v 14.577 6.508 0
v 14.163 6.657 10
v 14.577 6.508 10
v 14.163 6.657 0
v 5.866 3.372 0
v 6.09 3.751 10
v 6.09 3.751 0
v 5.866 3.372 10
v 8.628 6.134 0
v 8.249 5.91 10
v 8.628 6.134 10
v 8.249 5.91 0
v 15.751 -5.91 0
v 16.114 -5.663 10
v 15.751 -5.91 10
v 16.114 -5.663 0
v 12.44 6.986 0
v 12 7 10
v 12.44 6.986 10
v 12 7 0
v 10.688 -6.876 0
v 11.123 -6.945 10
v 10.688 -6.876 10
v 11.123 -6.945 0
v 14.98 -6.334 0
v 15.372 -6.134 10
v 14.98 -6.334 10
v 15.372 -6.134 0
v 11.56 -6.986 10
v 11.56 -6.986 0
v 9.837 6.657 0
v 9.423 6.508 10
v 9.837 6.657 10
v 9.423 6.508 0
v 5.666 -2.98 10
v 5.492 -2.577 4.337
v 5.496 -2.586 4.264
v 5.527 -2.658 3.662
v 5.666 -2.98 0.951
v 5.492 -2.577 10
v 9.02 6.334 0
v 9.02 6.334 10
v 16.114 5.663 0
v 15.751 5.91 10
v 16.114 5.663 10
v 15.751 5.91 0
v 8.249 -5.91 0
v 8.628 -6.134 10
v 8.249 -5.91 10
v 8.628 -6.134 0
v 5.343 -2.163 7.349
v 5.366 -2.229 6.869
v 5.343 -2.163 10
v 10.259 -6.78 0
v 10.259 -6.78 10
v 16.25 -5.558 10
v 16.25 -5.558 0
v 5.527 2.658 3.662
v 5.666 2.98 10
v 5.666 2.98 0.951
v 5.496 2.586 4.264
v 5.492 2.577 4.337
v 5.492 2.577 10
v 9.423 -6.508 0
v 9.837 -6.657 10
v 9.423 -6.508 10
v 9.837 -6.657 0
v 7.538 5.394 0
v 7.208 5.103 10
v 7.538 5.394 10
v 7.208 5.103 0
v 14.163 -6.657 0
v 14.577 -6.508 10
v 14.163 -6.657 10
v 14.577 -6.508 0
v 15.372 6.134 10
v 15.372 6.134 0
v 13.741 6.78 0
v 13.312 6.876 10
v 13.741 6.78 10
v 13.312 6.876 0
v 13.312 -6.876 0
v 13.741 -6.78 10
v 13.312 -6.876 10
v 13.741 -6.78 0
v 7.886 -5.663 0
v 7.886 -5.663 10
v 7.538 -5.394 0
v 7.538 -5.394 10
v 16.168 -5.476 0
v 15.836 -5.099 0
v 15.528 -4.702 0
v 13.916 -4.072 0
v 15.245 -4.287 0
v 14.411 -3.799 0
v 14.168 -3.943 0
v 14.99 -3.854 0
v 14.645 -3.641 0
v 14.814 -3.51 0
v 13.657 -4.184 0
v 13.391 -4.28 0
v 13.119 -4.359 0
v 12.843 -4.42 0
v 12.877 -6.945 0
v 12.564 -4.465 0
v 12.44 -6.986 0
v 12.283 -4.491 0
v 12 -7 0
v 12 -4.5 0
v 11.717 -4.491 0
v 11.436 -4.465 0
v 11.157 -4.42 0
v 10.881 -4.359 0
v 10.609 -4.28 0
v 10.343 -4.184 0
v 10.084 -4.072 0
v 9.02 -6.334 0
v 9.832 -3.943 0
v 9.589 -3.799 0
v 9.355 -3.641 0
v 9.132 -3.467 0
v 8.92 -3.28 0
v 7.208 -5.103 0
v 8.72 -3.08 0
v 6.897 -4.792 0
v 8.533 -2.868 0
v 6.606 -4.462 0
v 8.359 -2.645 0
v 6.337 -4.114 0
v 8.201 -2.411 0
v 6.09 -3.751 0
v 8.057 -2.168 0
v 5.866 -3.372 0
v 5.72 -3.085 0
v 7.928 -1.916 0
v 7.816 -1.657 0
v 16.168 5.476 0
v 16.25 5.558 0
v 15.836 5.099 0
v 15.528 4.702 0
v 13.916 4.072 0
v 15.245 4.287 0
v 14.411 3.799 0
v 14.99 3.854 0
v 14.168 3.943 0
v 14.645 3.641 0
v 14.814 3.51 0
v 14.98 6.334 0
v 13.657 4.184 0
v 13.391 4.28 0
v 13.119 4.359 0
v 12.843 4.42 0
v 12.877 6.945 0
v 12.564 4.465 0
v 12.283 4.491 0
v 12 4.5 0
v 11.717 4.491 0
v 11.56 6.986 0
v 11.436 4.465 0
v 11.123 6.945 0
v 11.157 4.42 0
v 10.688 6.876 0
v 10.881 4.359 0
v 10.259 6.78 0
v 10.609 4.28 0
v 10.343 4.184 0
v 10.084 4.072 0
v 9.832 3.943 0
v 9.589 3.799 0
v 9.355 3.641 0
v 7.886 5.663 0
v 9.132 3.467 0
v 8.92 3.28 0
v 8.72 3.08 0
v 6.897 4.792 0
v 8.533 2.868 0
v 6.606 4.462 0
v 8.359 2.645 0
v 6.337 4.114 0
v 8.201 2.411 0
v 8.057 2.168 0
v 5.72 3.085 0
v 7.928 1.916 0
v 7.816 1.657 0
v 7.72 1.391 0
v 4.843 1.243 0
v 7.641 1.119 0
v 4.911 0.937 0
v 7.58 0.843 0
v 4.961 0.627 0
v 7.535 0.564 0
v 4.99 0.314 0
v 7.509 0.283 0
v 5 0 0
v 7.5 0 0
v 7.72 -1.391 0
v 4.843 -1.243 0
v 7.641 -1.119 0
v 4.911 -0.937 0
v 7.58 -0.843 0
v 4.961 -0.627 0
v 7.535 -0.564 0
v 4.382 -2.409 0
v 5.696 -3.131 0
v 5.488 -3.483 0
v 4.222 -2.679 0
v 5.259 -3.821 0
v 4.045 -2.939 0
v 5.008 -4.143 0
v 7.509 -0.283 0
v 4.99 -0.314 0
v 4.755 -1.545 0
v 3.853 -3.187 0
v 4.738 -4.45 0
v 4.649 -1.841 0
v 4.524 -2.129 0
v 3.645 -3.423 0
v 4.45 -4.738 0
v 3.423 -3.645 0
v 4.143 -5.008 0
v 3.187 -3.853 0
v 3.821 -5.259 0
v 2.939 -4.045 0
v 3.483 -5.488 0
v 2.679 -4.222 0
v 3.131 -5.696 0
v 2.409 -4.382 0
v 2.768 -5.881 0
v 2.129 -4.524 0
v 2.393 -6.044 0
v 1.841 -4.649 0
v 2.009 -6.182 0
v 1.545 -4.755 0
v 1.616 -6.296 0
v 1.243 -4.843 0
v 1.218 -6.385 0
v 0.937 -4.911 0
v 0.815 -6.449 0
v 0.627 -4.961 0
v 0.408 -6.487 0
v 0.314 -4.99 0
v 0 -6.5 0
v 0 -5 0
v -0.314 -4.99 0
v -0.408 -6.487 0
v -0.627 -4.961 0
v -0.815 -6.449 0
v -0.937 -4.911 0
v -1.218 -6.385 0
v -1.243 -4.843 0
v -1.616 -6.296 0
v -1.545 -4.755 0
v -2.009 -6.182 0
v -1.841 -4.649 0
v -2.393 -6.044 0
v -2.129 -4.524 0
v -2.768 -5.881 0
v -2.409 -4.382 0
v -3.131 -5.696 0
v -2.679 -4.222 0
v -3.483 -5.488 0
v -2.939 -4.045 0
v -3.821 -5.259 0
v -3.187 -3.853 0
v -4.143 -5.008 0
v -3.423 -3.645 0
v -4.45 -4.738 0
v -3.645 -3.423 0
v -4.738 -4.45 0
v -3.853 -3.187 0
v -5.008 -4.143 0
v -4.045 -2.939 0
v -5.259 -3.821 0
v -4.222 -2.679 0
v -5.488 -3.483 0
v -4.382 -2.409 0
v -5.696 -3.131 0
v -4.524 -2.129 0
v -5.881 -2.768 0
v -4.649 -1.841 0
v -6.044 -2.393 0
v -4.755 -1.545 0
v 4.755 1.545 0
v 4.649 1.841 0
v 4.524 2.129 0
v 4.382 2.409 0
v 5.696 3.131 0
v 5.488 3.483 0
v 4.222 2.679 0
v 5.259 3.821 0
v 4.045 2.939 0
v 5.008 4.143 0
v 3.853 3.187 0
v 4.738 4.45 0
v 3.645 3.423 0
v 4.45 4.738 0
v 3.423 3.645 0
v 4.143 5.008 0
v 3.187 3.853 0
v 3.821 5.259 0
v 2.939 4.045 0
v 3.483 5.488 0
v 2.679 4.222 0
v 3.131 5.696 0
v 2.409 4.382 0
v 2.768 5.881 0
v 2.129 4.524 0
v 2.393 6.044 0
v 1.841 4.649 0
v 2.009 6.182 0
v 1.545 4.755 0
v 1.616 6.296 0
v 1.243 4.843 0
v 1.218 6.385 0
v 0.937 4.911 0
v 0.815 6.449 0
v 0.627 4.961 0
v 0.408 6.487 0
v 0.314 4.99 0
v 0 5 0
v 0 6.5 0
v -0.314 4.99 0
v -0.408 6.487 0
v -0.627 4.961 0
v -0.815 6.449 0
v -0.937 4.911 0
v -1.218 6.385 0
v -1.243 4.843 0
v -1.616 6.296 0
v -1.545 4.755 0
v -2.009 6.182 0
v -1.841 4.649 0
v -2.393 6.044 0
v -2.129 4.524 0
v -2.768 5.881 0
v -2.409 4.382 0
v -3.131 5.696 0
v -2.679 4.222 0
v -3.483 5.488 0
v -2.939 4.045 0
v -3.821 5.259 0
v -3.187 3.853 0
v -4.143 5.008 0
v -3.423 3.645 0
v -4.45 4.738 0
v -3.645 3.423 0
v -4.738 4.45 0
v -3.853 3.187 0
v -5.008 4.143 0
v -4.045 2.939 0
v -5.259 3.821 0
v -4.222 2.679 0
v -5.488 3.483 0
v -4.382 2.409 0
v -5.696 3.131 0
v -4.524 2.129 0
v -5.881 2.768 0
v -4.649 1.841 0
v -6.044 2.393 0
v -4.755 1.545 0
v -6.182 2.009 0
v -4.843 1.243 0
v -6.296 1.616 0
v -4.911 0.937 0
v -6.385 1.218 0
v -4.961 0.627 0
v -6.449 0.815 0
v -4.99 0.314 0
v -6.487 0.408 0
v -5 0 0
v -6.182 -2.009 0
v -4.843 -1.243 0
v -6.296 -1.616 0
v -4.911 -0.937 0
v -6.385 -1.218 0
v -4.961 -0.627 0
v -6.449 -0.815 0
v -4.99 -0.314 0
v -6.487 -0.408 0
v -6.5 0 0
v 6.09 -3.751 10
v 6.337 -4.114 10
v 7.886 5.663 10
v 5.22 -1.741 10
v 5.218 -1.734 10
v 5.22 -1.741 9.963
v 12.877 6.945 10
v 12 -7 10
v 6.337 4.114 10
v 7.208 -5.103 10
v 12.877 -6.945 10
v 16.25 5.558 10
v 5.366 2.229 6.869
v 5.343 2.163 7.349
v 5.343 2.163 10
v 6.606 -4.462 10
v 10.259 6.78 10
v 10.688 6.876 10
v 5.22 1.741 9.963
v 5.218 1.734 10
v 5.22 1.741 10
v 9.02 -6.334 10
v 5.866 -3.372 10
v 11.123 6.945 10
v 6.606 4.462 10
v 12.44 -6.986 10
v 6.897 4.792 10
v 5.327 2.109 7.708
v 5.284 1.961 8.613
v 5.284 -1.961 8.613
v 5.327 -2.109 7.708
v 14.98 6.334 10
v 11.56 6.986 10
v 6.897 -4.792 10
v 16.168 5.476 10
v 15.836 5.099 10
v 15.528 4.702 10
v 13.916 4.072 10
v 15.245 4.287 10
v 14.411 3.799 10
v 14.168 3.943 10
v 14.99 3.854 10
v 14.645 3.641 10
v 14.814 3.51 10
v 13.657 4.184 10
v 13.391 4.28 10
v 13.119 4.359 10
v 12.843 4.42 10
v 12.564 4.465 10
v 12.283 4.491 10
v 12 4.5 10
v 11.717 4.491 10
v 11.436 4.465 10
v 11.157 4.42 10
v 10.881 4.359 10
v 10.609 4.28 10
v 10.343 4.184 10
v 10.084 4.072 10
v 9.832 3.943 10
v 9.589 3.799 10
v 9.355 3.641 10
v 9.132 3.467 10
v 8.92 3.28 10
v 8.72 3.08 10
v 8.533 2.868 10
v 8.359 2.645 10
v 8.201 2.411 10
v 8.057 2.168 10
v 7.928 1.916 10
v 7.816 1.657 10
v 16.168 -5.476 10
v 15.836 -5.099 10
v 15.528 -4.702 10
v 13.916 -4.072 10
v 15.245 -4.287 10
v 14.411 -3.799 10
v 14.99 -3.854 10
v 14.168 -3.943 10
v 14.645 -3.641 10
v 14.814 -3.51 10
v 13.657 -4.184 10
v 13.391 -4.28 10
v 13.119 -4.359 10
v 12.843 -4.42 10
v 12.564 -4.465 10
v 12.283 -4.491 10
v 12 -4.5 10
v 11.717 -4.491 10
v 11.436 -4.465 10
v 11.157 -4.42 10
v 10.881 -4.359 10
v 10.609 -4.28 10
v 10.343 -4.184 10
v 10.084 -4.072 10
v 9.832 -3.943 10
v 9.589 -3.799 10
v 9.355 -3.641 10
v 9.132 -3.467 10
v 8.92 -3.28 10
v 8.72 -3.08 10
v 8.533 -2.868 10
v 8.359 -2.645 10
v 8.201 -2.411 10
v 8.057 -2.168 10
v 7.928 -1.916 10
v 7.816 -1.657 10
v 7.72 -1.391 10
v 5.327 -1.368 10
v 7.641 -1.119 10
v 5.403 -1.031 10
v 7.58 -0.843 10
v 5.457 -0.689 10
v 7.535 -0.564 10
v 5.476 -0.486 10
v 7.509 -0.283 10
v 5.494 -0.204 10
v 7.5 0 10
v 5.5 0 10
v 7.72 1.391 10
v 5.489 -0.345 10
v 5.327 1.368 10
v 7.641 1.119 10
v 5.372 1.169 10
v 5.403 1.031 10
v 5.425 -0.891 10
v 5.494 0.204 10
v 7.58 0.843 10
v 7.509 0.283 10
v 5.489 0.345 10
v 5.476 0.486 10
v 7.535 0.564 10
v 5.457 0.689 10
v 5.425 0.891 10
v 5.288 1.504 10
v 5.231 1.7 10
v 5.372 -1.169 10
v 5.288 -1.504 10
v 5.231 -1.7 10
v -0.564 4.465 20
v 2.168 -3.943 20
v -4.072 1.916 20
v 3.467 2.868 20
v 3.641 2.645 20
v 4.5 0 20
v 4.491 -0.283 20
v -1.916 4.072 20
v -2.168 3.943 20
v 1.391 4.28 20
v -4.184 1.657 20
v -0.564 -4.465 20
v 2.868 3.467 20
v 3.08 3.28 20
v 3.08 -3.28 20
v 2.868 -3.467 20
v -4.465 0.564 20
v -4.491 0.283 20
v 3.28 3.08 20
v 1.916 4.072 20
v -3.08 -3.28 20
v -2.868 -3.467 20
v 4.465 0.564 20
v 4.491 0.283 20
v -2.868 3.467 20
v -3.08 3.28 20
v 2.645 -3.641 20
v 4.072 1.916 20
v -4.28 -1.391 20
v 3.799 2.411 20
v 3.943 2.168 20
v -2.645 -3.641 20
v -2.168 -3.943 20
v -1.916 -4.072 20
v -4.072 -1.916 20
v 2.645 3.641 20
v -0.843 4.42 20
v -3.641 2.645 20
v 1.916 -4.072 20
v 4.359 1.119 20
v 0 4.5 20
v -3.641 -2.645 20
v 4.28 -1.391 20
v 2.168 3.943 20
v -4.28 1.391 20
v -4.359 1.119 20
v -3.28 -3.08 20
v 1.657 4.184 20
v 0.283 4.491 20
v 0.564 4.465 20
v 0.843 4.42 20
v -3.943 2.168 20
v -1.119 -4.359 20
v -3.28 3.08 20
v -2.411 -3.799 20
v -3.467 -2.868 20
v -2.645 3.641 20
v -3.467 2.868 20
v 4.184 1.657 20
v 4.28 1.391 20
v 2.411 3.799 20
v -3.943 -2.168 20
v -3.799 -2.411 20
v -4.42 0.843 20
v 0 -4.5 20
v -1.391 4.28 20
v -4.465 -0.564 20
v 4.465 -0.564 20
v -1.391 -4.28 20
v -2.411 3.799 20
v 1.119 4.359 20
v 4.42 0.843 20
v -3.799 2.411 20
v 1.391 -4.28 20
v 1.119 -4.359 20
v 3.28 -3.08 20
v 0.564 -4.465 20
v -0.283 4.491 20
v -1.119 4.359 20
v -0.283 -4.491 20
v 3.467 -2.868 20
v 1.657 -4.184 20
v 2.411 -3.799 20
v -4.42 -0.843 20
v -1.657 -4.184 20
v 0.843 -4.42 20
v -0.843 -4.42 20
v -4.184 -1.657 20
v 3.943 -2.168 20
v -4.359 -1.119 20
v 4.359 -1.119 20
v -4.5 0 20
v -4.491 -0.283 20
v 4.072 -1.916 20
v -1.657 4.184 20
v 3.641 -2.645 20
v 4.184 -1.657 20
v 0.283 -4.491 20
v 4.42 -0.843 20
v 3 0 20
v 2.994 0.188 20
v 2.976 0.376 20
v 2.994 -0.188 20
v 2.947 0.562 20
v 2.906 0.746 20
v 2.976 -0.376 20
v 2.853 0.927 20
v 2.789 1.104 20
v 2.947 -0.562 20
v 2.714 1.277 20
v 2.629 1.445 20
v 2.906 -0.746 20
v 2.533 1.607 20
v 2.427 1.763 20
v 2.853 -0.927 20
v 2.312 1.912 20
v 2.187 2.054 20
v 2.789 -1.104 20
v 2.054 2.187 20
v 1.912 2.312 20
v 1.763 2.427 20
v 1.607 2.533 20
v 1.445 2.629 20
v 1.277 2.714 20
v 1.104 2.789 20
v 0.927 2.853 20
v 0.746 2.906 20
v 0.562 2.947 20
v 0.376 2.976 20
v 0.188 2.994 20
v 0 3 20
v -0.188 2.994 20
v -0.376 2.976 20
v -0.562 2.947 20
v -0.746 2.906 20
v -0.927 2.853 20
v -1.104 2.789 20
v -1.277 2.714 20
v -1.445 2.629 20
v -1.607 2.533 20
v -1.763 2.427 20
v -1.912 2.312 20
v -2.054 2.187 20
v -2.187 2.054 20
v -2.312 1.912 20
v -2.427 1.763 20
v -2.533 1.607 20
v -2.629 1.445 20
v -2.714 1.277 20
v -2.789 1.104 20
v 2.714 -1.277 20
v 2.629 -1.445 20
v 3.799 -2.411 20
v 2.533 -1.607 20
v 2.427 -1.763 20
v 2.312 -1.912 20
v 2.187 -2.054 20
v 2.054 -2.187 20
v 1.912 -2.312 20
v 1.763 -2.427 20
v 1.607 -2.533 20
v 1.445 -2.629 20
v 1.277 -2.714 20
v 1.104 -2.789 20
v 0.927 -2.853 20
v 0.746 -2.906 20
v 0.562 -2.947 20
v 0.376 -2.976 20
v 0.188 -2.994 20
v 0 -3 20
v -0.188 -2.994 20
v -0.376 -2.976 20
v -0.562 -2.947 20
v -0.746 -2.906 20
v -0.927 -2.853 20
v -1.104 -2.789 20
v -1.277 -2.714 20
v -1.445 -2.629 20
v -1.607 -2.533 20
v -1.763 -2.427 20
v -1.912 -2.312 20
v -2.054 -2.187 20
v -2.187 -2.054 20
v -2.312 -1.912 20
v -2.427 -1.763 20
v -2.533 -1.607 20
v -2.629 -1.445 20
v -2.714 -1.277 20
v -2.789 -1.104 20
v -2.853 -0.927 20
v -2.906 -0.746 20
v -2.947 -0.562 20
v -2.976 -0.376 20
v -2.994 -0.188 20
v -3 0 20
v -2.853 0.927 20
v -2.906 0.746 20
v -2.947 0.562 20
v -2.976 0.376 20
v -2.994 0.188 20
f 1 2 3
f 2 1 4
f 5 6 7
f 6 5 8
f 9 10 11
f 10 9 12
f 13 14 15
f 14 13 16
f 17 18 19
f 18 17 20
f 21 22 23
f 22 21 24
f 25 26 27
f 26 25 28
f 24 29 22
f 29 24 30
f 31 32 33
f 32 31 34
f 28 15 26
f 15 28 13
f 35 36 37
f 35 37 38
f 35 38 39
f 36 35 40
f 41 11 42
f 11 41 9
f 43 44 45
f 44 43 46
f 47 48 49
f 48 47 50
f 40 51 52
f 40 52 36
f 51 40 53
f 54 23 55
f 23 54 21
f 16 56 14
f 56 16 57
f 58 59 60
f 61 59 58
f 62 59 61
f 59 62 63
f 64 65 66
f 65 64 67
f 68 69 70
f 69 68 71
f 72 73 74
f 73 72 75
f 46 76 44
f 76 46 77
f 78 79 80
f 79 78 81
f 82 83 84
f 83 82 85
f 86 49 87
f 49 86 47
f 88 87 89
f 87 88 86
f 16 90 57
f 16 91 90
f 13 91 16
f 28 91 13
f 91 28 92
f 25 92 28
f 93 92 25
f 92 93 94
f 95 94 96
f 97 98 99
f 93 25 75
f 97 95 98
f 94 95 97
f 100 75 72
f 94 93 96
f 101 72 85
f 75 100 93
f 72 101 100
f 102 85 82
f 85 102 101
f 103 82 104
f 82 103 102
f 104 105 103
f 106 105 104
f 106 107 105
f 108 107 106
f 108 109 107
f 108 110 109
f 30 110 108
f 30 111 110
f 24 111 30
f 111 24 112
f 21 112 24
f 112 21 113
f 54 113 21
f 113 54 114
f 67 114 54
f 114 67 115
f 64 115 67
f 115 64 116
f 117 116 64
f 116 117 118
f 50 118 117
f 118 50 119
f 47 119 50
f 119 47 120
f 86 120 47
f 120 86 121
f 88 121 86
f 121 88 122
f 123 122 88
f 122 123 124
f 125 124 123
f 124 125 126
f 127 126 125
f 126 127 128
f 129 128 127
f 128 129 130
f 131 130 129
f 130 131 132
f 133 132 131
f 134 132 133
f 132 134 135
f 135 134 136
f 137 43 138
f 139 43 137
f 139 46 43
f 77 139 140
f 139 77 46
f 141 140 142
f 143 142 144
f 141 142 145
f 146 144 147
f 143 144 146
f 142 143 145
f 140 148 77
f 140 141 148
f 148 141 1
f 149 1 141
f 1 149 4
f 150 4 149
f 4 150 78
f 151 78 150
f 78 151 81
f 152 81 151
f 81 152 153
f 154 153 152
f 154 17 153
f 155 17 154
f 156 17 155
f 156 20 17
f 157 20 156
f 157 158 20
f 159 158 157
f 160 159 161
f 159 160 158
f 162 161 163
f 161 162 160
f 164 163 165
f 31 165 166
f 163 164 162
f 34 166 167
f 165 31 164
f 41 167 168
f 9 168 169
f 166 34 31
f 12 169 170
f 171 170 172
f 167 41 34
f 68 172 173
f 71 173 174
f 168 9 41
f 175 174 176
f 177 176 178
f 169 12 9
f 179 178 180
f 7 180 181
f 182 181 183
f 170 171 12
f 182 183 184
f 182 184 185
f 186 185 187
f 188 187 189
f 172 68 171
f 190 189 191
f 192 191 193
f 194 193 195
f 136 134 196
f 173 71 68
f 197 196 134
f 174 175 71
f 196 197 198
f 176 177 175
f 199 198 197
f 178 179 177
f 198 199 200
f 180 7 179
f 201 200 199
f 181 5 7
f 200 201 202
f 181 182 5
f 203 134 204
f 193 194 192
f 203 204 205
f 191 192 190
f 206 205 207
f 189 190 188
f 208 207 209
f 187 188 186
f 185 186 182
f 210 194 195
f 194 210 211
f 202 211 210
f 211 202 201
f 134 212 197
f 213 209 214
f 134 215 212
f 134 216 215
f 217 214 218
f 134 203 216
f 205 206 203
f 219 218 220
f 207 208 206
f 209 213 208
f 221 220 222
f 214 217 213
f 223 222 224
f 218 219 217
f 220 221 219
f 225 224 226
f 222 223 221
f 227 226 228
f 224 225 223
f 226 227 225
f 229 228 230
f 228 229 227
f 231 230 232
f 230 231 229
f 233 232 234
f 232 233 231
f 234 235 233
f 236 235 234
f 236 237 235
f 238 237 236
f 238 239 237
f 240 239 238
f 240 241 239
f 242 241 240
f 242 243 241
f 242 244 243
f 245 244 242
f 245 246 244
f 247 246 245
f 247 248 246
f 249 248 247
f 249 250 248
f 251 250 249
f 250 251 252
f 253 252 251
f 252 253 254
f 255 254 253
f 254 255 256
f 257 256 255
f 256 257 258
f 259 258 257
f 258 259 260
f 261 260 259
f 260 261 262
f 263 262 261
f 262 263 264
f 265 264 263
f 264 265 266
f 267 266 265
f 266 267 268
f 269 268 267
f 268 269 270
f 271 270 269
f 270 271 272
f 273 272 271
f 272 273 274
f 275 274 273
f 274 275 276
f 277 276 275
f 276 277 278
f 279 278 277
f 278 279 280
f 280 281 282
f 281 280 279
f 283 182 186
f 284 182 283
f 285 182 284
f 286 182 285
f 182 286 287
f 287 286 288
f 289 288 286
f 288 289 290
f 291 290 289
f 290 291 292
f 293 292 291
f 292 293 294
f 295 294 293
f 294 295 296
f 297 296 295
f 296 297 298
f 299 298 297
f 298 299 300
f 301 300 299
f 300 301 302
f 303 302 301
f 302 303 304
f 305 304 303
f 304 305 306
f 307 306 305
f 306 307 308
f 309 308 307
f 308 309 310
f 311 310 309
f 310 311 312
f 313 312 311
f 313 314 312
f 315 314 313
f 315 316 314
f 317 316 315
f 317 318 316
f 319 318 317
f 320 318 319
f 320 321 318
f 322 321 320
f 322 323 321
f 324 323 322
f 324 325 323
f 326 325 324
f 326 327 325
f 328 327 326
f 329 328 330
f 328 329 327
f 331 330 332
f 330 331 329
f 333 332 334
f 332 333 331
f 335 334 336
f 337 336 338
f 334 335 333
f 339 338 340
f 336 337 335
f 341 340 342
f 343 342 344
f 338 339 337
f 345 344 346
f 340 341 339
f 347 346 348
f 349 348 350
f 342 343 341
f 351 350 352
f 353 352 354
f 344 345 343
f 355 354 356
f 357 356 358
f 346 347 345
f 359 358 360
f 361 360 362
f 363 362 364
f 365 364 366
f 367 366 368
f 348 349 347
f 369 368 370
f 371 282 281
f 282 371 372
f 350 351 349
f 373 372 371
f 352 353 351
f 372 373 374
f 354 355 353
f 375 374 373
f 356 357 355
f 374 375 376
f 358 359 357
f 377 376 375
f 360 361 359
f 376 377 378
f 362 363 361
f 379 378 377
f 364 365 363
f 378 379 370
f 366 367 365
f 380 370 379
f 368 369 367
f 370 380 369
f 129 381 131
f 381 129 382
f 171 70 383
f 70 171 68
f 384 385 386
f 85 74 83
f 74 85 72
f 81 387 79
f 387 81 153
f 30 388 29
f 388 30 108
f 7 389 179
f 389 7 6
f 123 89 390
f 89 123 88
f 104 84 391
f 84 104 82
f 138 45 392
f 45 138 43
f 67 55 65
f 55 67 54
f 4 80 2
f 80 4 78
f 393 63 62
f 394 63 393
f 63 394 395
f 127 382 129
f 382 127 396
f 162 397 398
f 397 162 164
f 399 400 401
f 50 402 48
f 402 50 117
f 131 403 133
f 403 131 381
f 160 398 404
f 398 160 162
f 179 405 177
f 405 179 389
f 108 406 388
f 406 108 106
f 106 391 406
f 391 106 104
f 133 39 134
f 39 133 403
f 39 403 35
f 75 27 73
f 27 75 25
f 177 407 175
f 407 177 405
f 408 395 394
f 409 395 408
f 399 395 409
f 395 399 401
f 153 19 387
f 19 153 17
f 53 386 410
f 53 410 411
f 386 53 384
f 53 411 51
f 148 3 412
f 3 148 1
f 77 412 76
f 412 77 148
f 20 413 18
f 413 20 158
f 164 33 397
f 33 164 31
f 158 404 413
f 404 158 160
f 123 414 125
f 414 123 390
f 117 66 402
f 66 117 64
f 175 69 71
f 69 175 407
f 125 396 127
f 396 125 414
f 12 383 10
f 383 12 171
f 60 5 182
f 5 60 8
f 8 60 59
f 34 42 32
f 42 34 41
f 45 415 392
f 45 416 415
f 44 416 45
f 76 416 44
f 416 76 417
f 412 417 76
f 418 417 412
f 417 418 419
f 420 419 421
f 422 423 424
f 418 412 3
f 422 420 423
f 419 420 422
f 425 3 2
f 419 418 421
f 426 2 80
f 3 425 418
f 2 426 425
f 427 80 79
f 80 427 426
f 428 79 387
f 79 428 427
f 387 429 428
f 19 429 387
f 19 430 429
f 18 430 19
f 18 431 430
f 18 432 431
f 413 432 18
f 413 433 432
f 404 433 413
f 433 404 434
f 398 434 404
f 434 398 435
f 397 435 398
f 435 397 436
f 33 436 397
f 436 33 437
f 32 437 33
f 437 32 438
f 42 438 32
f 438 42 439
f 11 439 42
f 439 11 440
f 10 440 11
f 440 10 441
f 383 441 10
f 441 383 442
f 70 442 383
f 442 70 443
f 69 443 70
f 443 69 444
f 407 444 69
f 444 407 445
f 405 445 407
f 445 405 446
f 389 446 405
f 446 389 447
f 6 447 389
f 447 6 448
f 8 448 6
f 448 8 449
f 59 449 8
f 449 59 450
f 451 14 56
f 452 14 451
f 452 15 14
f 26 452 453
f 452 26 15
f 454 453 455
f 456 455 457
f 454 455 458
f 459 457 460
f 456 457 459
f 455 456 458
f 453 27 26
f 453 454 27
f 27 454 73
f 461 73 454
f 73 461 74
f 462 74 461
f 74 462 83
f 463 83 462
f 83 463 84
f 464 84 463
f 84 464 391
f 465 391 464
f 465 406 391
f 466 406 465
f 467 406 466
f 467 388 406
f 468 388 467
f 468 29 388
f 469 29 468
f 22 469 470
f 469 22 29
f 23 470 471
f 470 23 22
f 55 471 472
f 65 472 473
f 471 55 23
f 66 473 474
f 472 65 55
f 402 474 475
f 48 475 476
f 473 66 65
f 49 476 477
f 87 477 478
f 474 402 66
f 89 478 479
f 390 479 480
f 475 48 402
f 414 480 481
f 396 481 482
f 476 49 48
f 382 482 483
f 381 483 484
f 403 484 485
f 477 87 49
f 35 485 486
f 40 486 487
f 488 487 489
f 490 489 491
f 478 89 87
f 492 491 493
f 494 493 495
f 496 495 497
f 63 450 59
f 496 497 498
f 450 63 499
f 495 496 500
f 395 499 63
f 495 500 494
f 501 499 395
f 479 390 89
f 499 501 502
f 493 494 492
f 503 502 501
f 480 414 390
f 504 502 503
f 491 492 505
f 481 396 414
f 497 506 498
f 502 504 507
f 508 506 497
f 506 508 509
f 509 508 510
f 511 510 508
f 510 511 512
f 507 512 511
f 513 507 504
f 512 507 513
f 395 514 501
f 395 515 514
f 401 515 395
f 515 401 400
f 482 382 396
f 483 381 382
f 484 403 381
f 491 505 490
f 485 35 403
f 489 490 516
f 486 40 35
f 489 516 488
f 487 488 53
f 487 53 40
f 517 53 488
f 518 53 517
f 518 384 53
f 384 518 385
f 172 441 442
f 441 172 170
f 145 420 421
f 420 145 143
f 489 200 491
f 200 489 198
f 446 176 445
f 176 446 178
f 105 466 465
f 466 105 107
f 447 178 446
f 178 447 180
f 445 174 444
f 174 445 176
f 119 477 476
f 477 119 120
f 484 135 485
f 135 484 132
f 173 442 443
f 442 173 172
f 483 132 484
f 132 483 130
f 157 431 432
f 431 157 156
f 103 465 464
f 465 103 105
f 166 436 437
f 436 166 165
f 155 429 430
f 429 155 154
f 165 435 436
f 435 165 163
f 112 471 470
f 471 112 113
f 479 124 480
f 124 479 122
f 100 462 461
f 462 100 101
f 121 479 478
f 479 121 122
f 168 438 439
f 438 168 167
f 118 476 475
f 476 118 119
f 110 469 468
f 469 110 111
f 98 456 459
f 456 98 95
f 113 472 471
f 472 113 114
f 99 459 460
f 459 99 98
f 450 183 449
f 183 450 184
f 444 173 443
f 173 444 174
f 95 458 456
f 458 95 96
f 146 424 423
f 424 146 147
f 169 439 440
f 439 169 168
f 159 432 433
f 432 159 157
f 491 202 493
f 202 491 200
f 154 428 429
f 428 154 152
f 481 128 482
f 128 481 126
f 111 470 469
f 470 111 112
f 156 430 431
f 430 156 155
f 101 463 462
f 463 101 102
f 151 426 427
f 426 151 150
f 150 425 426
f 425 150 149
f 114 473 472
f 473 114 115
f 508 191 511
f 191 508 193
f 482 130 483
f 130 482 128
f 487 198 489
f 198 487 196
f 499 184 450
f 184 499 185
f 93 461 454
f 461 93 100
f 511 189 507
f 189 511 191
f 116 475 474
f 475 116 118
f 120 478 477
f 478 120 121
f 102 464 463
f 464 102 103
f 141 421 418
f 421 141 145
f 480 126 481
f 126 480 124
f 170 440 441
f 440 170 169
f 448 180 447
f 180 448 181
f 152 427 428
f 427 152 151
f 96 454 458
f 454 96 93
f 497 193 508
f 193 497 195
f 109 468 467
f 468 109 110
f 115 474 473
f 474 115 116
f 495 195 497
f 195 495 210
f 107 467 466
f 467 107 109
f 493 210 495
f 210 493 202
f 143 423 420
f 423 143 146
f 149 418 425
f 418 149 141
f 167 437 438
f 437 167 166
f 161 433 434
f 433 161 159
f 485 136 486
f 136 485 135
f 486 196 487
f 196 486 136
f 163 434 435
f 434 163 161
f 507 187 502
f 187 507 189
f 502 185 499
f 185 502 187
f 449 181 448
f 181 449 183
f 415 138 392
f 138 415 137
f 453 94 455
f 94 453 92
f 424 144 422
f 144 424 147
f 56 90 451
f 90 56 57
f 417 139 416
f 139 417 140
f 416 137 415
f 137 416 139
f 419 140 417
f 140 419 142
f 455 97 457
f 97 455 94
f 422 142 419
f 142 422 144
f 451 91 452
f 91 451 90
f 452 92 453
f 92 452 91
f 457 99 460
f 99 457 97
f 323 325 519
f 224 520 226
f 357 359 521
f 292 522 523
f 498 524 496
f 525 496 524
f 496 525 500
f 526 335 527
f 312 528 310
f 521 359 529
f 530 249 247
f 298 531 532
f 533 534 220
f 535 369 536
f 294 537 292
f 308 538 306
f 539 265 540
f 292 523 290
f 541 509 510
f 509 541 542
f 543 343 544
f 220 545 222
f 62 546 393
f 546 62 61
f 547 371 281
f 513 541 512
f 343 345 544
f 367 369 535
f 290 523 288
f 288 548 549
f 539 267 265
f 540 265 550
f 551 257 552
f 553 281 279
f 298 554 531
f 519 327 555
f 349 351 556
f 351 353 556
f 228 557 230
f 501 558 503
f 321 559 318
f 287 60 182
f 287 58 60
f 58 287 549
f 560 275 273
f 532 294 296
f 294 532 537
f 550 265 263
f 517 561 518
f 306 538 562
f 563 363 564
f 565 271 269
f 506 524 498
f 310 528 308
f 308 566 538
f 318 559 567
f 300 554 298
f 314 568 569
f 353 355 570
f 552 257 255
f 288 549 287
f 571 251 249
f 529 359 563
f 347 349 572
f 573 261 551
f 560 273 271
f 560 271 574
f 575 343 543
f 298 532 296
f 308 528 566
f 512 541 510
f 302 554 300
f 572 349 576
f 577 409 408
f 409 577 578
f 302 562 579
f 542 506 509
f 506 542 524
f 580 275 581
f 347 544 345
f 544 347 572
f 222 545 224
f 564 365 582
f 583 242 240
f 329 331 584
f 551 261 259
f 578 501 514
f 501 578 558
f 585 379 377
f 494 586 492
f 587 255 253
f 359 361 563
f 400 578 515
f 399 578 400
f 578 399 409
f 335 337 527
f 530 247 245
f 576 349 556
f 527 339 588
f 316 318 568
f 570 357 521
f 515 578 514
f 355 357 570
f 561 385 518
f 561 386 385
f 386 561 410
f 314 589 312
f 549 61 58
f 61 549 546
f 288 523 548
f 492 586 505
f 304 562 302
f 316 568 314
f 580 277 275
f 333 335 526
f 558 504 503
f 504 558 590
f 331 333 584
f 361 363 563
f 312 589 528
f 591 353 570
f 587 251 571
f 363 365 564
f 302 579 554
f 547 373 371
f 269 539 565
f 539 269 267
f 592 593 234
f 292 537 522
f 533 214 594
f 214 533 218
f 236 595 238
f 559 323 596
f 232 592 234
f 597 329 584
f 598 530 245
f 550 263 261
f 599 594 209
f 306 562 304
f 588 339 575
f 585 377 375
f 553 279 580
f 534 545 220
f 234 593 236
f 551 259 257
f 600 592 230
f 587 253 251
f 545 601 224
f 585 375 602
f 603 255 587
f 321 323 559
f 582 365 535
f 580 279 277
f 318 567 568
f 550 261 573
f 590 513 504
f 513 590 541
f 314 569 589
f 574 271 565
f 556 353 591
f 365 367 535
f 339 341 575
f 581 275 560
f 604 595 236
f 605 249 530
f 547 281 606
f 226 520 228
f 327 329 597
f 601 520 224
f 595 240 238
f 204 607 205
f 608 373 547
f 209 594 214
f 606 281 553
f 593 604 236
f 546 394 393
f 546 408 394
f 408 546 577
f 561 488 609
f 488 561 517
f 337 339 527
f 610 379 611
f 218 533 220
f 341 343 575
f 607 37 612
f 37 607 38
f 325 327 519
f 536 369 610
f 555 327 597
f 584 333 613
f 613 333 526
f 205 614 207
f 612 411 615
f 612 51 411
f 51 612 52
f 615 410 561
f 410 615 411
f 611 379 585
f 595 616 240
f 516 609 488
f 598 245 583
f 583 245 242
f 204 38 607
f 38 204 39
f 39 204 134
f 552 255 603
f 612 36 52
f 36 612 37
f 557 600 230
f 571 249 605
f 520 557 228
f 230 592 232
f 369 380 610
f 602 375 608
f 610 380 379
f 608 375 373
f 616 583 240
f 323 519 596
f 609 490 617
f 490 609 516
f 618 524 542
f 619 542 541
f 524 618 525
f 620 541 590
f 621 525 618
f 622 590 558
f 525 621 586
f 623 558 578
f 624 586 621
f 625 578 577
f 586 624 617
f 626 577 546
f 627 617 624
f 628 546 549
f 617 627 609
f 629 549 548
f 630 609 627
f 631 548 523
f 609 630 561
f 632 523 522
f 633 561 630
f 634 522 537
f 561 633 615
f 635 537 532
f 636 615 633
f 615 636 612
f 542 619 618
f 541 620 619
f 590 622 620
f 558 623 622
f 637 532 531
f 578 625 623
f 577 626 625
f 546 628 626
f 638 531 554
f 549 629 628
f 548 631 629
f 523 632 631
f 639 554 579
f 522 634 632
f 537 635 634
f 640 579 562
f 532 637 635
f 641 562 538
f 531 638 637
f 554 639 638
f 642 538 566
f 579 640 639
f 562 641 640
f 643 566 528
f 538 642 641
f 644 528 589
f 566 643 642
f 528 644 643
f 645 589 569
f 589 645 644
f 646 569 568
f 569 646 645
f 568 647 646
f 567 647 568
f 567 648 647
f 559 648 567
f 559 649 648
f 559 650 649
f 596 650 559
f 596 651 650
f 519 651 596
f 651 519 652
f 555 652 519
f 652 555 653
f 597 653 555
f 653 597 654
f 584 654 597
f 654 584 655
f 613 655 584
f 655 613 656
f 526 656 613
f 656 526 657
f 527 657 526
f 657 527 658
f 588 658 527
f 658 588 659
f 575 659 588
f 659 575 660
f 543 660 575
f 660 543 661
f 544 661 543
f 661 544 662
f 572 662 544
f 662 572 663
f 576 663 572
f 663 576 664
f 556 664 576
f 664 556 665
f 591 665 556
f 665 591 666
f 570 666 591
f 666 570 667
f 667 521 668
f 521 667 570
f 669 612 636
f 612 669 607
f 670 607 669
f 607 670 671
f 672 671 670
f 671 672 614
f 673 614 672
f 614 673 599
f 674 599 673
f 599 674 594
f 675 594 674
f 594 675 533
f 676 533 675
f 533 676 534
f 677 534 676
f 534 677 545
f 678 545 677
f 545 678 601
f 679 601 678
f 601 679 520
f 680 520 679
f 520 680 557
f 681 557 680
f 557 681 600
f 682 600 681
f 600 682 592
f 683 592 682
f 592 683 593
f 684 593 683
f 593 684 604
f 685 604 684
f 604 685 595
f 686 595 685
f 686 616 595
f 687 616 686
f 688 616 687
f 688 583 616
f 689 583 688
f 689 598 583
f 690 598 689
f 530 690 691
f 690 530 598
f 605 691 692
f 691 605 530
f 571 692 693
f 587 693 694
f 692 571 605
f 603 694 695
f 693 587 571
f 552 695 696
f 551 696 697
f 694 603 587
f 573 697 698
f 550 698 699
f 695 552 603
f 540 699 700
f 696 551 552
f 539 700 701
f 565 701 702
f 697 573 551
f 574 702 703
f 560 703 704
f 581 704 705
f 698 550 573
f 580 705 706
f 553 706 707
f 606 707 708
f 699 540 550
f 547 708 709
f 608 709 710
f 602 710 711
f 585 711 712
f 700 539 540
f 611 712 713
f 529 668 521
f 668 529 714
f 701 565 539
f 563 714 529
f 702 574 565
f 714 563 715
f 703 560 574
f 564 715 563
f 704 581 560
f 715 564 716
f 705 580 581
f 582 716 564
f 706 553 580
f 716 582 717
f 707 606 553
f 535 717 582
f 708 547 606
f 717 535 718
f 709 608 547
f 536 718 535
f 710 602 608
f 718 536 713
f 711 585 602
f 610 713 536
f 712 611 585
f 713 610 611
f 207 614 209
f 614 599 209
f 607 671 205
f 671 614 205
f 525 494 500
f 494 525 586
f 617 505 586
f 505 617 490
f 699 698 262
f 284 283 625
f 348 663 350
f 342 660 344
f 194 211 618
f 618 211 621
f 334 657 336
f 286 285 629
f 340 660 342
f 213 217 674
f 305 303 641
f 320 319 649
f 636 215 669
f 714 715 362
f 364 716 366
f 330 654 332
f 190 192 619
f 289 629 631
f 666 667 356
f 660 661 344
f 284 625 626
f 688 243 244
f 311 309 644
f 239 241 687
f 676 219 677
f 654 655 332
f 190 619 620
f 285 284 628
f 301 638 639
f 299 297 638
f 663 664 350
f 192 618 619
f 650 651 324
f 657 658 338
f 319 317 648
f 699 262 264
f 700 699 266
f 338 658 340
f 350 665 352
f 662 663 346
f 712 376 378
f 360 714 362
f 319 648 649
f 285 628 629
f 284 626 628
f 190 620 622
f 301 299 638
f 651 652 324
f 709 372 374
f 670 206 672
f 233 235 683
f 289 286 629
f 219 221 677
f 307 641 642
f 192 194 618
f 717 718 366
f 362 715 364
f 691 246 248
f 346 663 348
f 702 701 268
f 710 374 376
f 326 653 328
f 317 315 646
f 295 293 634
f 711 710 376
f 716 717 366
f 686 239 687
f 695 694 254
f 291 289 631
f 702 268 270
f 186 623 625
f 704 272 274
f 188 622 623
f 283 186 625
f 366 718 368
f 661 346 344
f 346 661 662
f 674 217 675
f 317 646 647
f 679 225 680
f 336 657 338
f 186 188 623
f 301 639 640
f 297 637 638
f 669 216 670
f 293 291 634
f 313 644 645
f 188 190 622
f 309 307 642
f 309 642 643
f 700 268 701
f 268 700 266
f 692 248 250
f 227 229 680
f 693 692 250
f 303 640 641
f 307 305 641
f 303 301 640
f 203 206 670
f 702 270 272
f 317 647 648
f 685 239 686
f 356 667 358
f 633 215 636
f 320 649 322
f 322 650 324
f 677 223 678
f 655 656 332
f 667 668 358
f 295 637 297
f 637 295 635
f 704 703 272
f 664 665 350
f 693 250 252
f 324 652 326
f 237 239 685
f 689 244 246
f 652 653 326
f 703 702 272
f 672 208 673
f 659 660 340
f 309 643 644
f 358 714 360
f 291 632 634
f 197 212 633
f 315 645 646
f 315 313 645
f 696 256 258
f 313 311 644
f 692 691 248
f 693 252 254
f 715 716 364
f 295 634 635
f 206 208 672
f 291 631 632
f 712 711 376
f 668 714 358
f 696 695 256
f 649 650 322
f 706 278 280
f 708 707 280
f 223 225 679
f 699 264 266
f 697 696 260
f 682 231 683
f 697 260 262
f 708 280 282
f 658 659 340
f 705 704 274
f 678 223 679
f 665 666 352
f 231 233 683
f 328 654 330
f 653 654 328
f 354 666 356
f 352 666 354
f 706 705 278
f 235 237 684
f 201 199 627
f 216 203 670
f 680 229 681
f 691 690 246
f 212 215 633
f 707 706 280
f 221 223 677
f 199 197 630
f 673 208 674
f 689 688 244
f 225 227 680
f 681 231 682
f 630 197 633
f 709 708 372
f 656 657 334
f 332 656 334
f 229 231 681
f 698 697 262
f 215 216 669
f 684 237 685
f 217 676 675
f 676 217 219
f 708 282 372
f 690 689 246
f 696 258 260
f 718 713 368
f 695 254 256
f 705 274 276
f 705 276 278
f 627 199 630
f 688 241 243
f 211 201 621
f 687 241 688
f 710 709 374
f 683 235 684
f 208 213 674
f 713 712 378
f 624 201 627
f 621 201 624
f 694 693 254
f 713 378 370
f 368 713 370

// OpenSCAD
// Code shows generates complete Brymen holder for flexible water pipes.
// Print parts as seperate and glue together, see below.
$fn=100;

module pipe_mount() {
	translate([0, 0, -15]) rotate([90, 0, 0]) {
		translate([0, 0, -10]) {
			difference() {
				cylinder(h=20, r1=4.5, r2=6.5, center=true);
				cylinder(h=20, r1=3, r2=5, center=true);
			}
		}
	}
}

module probe_mount() {
	translate([0, 0, -15]) rotate([90, 0, 0]) {
		translate([0, 0, -10]) {
			difference() {
				cylinder(h=10, r1=7, r2=7, center=true);
				cylinder(h=10, r1=4.5, r2=4.5, center=true);
				translate([10, 0, 0]) cylinder(h=10, r1=8, r2=8, center=true);
			}
		}
	}
}

translate([0, -15, 0]) rotate([90, 0, 0]) pipe_mount();
translate([12, -15, -5]) rotate([90, 0, 0]) probe_mount();

// vim: ts=2:sw=2:noet:commentstring=//\ %s
